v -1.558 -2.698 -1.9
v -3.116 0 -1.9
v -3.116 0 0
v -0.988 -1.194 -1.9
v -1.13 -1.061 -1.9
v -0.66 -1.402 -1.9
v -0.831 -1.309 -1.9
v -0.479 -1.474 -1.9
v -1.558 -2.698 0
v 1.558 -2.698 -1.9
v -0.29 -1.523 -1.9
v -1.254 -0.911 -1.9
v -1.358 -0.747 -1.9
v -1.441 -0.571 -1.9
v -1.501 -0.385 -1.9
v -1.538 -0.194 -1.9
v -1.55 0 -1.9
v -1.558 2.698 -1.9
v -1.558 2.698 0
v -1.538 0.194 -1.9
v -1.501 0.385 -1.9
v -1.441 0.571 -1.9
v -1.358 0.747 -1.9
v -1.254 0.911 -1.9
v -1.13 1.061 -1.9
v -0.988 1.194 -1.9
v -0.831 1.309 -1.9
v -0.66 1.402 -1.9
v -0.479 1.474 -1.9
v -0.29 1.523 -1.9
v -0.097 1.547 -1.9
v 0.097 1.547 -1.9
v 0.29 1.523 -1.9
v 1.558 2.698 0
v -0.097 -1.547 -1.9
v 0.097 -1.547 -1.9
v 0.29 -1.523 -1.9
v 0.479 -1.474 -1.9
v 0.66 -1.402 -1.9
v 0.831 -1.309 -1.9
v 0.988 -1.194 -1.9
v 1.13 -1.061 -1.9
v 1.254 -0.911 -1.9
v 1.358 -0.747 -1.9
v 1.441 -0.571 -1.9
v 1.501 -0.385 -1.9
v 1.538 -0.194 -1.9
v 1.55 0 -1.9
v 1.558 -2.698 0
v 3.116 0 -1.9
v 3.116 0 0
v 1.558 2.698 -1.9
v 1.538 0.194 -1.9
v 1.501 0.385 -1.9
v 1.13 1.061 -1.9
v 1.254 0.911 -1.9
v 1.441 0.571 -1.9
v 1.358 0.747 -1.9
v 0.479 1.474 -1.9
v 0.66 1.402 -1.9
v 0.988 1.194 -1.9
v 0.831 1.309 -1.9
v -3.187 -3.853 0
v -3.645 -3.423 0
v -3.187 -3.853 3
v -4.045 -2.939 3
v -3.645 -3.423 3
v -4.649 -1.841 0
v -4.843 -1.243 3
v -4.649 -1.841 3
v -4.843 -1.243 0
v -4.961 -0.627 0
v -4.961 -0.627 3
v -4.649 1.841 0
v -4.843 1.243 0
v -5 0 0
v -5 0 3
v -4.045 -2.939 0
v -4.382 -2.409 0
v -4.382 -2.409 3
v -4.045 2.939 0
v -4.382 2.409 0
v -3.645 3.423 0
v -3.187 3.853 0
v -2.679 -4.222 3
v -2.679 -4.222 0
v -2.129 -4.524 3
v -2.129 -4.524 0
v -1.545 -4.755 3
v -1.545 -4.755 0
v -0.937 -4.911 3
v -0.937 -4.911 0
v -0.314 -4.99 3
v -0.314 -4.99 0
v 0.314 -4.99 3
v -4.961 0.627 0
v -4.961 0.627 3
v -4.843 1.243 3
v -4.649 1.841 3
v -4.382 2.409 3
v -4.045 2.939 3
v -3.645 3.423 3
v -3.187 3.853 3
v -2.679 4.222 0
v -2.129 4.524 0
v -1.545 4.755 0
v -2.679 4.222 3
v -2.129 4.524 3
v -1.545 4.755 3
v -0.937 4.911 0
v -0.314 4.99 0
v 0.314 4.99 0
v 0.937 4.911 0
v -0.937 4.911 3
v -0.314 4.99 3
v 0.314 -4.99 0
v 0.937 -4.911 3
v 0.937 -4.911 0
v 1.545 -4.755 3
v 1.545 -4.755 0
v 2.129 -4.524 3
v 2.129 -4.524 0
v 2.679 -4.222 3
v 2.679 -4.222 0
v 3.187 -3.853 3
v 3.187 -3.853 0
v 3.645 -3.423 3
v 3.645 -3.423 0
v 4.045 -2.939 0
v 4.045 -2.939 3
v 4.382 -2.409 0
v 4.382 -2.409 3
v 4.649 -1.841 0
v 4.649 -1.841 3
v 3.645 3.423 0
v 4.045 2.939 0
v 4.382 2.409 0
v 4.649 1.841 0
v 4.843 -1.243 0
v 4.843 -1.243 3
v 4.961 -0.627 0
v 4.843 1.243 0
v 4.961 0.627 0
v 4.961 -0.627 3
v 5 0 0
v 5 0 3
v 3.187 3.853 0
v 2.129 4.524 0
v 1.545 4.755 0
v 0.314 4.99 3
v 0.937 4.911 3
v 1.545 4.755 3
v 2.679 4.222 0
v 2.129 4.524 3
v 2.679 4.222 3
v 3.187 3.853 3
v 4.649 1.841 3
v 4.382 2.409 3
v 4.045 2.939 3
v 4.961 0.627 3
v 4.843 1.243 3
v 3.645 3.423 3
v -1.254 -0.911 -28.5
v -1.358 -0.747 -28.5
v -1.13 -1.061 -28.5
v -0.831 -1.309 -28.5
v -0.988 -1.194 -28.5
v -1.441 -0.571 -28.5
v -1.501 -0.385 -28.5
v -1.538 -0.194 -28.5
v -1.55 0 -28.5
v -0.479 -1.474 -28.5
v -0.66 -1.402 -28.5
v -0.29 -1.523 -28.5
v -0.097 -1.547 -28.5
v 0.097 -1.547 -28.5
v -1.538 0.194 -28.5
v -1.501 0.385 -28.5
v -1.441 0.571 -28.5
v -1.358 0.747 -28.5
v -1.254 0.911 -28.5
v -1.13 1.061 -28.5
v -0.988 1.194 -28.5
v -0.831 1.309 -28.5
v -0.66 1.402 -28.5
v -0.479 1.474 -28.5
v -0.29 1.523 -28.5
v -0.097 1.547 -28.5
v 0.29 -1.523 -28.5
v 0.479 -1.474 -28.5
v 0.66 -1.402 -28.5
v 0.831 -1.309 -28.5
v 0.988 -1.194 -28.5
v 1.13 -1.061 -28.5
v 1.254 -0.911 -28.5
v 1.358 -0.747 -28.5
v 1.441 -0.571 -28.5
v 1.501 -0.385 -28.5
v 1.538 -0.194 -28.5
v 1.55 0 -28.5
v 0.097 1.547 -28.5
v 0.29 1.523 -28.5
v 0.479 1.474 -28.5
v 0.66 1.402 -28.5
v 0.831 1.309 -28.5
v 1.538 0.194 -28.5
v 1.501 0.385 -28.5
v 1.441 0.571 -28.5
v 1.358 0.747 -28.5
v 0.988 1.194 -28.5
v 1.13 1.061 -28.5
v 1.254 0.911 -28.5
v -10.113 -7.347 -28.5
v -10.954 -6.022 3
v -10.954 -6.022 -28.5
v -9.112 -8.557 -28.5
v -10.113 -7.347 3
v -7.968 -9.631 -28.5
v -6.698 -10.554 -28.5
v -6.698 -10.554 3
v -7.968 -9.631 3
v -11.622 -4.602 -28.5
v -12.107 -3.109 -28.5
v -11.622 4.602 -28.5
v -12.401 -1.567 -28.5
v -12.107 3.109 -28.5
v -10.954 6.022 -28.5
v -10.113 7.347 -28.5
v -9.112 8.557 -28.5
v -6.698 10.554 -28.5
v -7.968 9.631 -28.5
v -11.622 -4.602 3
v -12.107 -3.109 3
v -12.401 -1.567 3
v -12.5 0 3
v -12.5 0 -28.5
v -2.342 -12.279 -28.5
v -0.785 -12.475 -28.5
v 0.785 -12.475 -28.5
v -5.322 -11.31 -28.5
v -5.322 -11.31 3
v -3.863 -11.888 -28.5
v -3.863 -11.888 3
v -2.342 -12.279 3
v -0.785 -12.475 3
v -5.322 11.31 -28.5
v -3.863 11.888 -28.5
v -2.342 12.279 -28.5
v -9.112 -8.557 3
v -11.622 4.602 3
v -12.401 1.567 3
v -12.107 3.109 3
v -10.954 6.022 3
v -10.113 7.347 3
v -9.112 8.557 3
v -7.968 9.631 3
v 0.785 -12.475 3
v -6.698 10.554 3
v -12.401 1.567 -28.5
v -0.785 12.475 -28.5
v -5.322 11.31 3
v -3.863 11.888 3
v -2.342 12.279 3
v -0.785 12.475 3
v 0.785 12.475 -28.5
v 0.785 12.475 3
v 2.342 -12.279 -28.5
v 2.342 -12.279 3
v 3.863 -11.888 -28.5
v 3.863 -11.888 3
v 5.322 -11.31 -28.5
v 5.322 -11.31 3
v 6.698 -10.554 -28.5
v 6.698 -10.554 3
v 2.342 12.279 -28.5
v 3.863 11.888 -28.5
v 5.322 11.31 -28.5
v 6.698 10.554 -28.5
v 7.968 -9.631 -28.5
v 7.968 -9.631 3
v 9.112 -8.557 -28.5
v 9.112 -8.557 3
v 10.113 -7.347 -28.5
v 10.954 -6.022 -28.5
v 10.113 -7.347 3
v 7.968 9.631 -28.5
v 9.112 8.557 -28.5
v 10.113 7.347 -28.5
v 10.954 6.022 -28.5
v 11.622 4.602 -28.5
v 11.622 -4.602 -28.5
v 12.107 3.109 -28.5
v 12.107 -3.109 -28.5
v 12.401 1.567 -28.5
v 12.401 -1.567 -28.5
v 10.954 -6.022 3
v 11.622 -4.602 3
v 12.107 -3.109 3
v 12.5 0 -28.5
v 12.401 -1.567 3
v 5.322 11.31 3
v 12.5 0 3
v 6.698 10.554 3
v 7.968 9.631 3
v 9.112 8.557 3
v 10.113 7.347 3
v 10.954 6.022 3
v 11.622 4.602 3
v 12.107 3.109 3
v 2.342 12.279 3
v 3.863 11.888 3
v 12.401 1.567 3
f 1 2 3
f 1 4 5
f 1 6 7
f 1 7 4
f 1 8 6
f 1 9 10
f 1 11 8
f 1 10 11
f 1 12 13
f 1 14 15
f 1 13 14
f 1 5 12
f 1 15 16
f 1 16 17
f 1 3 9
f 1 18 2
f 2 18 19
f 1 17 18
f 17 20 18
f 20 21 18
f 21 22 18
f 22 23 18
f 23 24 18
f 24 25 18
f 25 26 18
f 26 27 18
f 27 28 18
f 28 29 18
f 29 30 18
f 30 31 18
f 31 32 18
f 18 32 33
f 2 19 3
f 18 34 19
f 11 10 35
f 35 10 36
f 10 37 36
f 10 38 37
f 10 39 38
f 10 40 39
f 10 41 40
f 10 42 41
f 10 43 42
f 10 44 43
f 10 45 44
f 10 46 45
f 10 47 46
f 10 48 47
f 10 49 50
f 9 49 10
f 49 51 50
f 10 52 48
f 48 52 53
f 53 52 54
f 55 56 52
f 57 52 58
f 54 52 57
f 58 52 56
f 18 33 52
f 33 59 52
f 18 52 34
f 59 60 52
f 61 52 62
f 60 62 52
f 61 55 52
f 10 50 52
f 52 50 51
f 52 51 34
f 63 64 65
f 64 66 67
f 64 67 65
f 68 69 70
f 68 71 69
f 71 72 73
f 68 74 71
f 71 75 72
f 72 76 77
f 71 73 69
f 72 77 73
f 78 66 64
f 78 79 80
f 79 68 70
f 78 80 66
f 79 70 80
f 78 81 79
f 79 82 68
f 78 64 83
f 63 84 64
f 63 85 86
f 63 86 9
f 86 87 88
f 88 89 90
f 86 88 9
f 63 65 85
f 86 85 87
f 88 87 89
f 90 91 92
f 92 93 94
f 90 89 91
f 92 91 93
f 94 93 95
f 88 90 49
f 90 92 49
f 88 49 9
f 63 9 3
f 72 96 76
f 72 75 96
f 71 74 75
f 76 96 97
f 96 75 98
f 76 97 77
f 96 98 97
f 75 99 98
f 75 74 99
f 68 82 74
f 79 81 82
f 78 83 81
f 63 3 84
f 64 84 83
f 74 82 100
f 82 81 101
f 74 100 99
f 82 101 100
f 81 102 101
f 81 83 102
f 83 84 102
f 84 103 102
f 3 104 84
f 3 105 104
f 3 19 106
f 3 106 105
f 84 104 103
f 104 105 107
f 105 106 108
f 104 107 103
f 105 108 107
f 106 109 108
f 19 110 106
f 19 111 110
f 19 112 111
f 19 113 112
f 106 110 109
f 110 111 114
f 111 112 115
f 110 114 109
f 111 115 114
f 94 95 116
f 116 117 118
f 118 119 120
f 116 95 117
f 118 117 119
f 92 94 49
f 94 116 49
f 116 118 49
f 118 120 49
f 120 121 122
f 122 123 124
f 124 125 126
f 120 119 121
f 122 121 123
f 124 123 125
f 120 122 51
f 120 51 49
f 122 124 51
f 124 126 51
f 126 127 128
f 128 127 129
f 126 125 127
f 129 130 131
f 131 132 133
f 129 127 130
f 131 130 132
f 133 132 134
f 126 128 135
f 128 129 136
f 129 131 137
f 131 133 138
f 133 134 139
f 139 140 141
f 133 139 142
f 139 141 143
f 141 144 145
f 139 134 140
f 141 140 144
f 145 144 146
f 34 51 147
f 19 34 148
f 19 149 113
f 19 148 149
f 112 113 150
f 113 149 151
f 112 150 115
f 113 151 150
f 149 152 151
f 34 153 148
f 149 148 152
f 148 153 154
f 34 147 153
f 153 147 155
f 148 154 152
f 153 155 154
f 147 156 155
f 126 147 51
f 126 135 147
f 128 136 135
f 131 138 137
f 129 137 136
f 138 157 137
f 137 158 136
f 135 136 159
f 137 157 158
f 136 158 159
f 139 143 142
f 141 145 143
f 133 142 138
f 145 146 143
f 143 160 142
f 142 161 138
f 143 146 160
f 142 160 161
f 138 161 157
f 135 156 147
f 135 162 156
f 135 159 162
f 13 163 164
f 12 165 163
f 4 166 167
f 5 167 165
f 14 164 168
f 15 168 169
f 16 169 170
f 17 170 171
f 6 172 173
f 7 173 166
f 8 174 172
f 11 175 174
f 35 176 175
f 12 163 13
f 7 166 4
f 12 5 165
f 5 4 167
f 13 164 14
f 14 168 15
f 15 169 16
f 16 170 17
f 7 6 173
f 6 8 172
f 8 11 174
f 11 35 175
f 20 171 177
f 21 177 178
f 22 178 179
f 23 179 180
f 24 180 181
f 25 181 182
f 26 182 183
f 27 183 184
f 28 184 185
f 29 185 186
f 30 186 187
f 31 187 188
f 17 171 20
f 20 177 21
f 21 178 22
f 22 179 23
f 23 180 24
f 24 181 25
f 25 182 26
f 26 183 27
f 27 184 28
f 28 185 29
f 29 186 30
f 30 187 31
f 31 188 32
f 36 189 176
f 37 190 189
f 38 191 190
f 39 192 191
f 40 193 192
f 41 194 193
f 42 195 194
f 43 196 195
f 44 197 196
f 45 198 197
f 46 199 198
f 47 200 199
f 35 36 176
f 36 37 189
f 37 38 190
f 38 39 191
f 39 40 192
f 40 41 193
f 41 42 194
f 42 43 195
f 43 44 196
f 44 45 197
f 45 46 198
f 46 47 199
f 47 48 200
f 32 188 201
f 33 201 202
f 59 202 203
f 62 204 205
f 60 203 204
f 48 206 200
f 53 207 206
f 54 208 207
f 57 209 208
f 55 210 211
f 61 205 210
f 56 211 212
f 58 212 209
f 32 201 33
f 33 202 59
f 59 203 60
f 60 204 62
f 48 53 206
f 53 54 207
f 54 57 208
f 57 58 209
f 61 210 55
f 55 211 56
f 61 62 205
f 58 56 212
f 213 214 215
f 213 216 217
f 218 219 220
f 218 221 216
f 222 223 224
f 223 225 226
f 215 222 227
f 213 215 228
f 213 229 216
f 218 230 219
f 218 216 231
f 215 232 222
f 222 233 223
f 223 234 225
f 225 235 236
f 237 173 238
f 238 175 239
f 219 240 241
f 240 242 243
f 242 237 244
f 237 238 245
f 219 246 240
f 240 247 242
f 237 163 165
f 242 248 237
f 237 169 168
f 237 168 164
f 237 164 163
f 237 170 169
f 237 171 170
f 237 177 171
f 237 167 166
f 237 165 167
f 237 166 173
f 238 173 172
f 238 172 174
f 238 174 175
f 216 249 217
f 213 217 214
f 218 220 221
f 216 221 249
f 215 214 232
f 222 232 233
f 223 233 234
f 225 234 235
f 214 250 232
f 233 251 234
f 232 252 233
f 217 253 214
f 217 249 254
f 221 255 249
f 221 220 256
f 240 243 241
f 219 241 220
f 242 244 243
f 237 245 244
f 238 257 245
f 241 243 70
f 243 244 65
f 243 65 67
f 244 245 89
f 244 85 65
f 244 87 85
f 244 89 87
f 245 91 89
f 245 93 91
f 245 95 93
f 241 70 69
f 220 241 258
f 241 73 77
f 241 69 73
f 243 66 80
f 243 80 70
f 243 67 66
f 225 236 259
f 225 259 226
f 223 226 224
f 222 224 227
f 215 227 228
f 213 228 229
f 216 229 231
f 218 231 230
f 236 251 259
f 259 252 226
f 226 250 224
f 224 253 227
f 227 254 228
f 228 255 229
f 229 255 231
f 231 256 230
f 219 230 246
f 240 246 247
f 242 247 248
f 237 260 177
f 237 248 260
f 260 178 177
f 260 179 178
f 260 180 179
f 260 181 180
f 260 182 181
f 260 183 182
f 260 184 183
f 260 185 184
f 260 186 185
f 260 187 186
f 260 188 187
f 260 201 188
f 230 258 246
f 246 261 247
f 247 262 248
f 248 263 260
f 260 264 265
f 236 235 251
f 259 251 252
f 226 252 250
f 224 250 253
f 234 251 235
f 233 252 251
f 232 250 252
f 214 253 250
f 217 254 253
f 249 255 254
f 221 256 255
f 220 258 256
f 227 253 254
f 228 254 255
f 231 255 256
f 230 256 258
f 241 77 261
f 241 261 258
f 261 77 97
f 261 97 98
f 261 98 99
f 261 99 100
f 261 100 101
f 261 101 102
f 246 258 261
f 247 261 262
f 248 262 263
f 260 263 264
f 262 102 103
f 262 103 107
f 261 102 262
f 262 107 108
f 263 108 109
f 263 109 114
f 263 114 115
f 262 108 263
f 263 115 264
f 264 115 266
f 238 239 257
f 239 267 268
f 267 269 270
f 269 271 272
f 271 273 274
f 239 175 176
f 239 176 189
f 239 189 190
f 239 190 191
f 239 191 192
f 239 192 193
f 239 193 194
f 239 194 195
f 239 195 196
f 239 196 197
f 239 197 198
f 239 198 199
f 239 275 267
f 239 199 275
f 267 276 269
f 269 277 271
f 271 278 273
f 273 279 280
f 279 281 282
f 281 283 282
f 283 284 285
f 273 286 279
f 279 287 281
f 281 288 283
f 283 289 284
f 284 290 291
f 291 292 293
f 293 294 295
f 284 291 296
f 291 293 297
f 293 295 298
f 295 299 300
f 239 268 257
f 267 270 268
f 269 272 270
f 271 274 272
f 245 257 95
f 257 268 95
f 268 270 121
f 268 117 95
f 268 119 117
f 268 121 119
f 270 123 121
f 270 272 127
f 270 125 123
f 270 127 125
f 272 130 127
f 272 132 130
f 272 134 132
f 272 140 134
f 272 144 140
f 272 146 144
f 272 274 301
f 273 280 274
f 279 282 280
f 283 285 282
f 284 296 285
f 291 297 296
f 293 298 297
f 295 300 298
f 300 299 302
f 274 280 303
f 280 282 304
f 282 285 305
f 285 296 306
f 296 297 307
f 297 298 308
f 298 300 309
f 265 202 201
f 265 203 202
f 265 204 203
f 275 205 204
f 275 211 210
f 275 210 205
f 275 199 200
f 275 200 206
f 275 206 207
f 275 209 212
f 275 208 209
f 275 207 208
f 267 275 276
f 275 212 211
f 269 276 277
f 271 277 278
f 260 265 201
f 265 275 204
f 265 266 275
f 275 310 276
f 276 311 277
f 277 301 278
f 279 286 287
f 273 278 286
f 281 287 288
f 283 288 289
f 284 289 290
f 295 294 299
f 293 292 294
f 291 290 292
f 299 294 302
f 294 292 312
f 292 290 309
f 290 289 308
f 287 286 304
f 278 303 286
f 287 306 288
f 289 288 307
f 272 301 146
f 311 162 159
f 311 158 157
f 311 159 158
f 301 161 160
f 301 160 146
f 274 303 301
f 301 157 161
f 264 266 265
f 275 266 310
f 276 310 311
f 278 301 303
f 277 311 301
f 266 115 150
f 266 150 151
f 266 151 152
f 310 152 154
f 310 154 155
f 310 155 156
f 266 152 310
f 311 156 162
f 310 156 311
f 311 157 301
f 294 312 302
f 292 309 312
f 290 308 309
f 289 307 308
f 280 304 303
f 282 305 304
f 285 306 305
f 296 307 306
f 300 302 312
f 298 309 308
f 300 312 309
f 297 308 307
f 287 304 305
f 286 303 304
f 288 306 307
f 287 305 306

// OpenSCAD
$fn = 50;


difference() {
	union() {
		translate(v = [0, 0, -28.5000000000]) {
			cylinder(h = 31.5000000000, r = 12.5000000000);
		}
	}
	union() {
		translate(v = [0, 0, 0]) {
			rotate(a = [0, 0, 0]) {
				difference() {
					union() {
						translate(v = [0, 0, -1.9000000000]) {
							linear_extrude(height = 1.9000000000) {
								polygon(points = [[3.1158000000, 0.0000000000], [1.5579000000, 2.6983619531], [-1.5579000000, 2.6983619531], [-3.1158000000, 0.0000000000], [-1.5579000000, -2.6983619531], [1.5579000000, -2.6983619531]]);
							}
						}
					}
					union();
				}
			}
		}
		#cylinder(h = 3, r = 5.0000000000);
		#translate(v = [0, 0, -100.0000000000]) {
			cylinder(h = 200, r = 1.5500000000);
		}
	}
}
